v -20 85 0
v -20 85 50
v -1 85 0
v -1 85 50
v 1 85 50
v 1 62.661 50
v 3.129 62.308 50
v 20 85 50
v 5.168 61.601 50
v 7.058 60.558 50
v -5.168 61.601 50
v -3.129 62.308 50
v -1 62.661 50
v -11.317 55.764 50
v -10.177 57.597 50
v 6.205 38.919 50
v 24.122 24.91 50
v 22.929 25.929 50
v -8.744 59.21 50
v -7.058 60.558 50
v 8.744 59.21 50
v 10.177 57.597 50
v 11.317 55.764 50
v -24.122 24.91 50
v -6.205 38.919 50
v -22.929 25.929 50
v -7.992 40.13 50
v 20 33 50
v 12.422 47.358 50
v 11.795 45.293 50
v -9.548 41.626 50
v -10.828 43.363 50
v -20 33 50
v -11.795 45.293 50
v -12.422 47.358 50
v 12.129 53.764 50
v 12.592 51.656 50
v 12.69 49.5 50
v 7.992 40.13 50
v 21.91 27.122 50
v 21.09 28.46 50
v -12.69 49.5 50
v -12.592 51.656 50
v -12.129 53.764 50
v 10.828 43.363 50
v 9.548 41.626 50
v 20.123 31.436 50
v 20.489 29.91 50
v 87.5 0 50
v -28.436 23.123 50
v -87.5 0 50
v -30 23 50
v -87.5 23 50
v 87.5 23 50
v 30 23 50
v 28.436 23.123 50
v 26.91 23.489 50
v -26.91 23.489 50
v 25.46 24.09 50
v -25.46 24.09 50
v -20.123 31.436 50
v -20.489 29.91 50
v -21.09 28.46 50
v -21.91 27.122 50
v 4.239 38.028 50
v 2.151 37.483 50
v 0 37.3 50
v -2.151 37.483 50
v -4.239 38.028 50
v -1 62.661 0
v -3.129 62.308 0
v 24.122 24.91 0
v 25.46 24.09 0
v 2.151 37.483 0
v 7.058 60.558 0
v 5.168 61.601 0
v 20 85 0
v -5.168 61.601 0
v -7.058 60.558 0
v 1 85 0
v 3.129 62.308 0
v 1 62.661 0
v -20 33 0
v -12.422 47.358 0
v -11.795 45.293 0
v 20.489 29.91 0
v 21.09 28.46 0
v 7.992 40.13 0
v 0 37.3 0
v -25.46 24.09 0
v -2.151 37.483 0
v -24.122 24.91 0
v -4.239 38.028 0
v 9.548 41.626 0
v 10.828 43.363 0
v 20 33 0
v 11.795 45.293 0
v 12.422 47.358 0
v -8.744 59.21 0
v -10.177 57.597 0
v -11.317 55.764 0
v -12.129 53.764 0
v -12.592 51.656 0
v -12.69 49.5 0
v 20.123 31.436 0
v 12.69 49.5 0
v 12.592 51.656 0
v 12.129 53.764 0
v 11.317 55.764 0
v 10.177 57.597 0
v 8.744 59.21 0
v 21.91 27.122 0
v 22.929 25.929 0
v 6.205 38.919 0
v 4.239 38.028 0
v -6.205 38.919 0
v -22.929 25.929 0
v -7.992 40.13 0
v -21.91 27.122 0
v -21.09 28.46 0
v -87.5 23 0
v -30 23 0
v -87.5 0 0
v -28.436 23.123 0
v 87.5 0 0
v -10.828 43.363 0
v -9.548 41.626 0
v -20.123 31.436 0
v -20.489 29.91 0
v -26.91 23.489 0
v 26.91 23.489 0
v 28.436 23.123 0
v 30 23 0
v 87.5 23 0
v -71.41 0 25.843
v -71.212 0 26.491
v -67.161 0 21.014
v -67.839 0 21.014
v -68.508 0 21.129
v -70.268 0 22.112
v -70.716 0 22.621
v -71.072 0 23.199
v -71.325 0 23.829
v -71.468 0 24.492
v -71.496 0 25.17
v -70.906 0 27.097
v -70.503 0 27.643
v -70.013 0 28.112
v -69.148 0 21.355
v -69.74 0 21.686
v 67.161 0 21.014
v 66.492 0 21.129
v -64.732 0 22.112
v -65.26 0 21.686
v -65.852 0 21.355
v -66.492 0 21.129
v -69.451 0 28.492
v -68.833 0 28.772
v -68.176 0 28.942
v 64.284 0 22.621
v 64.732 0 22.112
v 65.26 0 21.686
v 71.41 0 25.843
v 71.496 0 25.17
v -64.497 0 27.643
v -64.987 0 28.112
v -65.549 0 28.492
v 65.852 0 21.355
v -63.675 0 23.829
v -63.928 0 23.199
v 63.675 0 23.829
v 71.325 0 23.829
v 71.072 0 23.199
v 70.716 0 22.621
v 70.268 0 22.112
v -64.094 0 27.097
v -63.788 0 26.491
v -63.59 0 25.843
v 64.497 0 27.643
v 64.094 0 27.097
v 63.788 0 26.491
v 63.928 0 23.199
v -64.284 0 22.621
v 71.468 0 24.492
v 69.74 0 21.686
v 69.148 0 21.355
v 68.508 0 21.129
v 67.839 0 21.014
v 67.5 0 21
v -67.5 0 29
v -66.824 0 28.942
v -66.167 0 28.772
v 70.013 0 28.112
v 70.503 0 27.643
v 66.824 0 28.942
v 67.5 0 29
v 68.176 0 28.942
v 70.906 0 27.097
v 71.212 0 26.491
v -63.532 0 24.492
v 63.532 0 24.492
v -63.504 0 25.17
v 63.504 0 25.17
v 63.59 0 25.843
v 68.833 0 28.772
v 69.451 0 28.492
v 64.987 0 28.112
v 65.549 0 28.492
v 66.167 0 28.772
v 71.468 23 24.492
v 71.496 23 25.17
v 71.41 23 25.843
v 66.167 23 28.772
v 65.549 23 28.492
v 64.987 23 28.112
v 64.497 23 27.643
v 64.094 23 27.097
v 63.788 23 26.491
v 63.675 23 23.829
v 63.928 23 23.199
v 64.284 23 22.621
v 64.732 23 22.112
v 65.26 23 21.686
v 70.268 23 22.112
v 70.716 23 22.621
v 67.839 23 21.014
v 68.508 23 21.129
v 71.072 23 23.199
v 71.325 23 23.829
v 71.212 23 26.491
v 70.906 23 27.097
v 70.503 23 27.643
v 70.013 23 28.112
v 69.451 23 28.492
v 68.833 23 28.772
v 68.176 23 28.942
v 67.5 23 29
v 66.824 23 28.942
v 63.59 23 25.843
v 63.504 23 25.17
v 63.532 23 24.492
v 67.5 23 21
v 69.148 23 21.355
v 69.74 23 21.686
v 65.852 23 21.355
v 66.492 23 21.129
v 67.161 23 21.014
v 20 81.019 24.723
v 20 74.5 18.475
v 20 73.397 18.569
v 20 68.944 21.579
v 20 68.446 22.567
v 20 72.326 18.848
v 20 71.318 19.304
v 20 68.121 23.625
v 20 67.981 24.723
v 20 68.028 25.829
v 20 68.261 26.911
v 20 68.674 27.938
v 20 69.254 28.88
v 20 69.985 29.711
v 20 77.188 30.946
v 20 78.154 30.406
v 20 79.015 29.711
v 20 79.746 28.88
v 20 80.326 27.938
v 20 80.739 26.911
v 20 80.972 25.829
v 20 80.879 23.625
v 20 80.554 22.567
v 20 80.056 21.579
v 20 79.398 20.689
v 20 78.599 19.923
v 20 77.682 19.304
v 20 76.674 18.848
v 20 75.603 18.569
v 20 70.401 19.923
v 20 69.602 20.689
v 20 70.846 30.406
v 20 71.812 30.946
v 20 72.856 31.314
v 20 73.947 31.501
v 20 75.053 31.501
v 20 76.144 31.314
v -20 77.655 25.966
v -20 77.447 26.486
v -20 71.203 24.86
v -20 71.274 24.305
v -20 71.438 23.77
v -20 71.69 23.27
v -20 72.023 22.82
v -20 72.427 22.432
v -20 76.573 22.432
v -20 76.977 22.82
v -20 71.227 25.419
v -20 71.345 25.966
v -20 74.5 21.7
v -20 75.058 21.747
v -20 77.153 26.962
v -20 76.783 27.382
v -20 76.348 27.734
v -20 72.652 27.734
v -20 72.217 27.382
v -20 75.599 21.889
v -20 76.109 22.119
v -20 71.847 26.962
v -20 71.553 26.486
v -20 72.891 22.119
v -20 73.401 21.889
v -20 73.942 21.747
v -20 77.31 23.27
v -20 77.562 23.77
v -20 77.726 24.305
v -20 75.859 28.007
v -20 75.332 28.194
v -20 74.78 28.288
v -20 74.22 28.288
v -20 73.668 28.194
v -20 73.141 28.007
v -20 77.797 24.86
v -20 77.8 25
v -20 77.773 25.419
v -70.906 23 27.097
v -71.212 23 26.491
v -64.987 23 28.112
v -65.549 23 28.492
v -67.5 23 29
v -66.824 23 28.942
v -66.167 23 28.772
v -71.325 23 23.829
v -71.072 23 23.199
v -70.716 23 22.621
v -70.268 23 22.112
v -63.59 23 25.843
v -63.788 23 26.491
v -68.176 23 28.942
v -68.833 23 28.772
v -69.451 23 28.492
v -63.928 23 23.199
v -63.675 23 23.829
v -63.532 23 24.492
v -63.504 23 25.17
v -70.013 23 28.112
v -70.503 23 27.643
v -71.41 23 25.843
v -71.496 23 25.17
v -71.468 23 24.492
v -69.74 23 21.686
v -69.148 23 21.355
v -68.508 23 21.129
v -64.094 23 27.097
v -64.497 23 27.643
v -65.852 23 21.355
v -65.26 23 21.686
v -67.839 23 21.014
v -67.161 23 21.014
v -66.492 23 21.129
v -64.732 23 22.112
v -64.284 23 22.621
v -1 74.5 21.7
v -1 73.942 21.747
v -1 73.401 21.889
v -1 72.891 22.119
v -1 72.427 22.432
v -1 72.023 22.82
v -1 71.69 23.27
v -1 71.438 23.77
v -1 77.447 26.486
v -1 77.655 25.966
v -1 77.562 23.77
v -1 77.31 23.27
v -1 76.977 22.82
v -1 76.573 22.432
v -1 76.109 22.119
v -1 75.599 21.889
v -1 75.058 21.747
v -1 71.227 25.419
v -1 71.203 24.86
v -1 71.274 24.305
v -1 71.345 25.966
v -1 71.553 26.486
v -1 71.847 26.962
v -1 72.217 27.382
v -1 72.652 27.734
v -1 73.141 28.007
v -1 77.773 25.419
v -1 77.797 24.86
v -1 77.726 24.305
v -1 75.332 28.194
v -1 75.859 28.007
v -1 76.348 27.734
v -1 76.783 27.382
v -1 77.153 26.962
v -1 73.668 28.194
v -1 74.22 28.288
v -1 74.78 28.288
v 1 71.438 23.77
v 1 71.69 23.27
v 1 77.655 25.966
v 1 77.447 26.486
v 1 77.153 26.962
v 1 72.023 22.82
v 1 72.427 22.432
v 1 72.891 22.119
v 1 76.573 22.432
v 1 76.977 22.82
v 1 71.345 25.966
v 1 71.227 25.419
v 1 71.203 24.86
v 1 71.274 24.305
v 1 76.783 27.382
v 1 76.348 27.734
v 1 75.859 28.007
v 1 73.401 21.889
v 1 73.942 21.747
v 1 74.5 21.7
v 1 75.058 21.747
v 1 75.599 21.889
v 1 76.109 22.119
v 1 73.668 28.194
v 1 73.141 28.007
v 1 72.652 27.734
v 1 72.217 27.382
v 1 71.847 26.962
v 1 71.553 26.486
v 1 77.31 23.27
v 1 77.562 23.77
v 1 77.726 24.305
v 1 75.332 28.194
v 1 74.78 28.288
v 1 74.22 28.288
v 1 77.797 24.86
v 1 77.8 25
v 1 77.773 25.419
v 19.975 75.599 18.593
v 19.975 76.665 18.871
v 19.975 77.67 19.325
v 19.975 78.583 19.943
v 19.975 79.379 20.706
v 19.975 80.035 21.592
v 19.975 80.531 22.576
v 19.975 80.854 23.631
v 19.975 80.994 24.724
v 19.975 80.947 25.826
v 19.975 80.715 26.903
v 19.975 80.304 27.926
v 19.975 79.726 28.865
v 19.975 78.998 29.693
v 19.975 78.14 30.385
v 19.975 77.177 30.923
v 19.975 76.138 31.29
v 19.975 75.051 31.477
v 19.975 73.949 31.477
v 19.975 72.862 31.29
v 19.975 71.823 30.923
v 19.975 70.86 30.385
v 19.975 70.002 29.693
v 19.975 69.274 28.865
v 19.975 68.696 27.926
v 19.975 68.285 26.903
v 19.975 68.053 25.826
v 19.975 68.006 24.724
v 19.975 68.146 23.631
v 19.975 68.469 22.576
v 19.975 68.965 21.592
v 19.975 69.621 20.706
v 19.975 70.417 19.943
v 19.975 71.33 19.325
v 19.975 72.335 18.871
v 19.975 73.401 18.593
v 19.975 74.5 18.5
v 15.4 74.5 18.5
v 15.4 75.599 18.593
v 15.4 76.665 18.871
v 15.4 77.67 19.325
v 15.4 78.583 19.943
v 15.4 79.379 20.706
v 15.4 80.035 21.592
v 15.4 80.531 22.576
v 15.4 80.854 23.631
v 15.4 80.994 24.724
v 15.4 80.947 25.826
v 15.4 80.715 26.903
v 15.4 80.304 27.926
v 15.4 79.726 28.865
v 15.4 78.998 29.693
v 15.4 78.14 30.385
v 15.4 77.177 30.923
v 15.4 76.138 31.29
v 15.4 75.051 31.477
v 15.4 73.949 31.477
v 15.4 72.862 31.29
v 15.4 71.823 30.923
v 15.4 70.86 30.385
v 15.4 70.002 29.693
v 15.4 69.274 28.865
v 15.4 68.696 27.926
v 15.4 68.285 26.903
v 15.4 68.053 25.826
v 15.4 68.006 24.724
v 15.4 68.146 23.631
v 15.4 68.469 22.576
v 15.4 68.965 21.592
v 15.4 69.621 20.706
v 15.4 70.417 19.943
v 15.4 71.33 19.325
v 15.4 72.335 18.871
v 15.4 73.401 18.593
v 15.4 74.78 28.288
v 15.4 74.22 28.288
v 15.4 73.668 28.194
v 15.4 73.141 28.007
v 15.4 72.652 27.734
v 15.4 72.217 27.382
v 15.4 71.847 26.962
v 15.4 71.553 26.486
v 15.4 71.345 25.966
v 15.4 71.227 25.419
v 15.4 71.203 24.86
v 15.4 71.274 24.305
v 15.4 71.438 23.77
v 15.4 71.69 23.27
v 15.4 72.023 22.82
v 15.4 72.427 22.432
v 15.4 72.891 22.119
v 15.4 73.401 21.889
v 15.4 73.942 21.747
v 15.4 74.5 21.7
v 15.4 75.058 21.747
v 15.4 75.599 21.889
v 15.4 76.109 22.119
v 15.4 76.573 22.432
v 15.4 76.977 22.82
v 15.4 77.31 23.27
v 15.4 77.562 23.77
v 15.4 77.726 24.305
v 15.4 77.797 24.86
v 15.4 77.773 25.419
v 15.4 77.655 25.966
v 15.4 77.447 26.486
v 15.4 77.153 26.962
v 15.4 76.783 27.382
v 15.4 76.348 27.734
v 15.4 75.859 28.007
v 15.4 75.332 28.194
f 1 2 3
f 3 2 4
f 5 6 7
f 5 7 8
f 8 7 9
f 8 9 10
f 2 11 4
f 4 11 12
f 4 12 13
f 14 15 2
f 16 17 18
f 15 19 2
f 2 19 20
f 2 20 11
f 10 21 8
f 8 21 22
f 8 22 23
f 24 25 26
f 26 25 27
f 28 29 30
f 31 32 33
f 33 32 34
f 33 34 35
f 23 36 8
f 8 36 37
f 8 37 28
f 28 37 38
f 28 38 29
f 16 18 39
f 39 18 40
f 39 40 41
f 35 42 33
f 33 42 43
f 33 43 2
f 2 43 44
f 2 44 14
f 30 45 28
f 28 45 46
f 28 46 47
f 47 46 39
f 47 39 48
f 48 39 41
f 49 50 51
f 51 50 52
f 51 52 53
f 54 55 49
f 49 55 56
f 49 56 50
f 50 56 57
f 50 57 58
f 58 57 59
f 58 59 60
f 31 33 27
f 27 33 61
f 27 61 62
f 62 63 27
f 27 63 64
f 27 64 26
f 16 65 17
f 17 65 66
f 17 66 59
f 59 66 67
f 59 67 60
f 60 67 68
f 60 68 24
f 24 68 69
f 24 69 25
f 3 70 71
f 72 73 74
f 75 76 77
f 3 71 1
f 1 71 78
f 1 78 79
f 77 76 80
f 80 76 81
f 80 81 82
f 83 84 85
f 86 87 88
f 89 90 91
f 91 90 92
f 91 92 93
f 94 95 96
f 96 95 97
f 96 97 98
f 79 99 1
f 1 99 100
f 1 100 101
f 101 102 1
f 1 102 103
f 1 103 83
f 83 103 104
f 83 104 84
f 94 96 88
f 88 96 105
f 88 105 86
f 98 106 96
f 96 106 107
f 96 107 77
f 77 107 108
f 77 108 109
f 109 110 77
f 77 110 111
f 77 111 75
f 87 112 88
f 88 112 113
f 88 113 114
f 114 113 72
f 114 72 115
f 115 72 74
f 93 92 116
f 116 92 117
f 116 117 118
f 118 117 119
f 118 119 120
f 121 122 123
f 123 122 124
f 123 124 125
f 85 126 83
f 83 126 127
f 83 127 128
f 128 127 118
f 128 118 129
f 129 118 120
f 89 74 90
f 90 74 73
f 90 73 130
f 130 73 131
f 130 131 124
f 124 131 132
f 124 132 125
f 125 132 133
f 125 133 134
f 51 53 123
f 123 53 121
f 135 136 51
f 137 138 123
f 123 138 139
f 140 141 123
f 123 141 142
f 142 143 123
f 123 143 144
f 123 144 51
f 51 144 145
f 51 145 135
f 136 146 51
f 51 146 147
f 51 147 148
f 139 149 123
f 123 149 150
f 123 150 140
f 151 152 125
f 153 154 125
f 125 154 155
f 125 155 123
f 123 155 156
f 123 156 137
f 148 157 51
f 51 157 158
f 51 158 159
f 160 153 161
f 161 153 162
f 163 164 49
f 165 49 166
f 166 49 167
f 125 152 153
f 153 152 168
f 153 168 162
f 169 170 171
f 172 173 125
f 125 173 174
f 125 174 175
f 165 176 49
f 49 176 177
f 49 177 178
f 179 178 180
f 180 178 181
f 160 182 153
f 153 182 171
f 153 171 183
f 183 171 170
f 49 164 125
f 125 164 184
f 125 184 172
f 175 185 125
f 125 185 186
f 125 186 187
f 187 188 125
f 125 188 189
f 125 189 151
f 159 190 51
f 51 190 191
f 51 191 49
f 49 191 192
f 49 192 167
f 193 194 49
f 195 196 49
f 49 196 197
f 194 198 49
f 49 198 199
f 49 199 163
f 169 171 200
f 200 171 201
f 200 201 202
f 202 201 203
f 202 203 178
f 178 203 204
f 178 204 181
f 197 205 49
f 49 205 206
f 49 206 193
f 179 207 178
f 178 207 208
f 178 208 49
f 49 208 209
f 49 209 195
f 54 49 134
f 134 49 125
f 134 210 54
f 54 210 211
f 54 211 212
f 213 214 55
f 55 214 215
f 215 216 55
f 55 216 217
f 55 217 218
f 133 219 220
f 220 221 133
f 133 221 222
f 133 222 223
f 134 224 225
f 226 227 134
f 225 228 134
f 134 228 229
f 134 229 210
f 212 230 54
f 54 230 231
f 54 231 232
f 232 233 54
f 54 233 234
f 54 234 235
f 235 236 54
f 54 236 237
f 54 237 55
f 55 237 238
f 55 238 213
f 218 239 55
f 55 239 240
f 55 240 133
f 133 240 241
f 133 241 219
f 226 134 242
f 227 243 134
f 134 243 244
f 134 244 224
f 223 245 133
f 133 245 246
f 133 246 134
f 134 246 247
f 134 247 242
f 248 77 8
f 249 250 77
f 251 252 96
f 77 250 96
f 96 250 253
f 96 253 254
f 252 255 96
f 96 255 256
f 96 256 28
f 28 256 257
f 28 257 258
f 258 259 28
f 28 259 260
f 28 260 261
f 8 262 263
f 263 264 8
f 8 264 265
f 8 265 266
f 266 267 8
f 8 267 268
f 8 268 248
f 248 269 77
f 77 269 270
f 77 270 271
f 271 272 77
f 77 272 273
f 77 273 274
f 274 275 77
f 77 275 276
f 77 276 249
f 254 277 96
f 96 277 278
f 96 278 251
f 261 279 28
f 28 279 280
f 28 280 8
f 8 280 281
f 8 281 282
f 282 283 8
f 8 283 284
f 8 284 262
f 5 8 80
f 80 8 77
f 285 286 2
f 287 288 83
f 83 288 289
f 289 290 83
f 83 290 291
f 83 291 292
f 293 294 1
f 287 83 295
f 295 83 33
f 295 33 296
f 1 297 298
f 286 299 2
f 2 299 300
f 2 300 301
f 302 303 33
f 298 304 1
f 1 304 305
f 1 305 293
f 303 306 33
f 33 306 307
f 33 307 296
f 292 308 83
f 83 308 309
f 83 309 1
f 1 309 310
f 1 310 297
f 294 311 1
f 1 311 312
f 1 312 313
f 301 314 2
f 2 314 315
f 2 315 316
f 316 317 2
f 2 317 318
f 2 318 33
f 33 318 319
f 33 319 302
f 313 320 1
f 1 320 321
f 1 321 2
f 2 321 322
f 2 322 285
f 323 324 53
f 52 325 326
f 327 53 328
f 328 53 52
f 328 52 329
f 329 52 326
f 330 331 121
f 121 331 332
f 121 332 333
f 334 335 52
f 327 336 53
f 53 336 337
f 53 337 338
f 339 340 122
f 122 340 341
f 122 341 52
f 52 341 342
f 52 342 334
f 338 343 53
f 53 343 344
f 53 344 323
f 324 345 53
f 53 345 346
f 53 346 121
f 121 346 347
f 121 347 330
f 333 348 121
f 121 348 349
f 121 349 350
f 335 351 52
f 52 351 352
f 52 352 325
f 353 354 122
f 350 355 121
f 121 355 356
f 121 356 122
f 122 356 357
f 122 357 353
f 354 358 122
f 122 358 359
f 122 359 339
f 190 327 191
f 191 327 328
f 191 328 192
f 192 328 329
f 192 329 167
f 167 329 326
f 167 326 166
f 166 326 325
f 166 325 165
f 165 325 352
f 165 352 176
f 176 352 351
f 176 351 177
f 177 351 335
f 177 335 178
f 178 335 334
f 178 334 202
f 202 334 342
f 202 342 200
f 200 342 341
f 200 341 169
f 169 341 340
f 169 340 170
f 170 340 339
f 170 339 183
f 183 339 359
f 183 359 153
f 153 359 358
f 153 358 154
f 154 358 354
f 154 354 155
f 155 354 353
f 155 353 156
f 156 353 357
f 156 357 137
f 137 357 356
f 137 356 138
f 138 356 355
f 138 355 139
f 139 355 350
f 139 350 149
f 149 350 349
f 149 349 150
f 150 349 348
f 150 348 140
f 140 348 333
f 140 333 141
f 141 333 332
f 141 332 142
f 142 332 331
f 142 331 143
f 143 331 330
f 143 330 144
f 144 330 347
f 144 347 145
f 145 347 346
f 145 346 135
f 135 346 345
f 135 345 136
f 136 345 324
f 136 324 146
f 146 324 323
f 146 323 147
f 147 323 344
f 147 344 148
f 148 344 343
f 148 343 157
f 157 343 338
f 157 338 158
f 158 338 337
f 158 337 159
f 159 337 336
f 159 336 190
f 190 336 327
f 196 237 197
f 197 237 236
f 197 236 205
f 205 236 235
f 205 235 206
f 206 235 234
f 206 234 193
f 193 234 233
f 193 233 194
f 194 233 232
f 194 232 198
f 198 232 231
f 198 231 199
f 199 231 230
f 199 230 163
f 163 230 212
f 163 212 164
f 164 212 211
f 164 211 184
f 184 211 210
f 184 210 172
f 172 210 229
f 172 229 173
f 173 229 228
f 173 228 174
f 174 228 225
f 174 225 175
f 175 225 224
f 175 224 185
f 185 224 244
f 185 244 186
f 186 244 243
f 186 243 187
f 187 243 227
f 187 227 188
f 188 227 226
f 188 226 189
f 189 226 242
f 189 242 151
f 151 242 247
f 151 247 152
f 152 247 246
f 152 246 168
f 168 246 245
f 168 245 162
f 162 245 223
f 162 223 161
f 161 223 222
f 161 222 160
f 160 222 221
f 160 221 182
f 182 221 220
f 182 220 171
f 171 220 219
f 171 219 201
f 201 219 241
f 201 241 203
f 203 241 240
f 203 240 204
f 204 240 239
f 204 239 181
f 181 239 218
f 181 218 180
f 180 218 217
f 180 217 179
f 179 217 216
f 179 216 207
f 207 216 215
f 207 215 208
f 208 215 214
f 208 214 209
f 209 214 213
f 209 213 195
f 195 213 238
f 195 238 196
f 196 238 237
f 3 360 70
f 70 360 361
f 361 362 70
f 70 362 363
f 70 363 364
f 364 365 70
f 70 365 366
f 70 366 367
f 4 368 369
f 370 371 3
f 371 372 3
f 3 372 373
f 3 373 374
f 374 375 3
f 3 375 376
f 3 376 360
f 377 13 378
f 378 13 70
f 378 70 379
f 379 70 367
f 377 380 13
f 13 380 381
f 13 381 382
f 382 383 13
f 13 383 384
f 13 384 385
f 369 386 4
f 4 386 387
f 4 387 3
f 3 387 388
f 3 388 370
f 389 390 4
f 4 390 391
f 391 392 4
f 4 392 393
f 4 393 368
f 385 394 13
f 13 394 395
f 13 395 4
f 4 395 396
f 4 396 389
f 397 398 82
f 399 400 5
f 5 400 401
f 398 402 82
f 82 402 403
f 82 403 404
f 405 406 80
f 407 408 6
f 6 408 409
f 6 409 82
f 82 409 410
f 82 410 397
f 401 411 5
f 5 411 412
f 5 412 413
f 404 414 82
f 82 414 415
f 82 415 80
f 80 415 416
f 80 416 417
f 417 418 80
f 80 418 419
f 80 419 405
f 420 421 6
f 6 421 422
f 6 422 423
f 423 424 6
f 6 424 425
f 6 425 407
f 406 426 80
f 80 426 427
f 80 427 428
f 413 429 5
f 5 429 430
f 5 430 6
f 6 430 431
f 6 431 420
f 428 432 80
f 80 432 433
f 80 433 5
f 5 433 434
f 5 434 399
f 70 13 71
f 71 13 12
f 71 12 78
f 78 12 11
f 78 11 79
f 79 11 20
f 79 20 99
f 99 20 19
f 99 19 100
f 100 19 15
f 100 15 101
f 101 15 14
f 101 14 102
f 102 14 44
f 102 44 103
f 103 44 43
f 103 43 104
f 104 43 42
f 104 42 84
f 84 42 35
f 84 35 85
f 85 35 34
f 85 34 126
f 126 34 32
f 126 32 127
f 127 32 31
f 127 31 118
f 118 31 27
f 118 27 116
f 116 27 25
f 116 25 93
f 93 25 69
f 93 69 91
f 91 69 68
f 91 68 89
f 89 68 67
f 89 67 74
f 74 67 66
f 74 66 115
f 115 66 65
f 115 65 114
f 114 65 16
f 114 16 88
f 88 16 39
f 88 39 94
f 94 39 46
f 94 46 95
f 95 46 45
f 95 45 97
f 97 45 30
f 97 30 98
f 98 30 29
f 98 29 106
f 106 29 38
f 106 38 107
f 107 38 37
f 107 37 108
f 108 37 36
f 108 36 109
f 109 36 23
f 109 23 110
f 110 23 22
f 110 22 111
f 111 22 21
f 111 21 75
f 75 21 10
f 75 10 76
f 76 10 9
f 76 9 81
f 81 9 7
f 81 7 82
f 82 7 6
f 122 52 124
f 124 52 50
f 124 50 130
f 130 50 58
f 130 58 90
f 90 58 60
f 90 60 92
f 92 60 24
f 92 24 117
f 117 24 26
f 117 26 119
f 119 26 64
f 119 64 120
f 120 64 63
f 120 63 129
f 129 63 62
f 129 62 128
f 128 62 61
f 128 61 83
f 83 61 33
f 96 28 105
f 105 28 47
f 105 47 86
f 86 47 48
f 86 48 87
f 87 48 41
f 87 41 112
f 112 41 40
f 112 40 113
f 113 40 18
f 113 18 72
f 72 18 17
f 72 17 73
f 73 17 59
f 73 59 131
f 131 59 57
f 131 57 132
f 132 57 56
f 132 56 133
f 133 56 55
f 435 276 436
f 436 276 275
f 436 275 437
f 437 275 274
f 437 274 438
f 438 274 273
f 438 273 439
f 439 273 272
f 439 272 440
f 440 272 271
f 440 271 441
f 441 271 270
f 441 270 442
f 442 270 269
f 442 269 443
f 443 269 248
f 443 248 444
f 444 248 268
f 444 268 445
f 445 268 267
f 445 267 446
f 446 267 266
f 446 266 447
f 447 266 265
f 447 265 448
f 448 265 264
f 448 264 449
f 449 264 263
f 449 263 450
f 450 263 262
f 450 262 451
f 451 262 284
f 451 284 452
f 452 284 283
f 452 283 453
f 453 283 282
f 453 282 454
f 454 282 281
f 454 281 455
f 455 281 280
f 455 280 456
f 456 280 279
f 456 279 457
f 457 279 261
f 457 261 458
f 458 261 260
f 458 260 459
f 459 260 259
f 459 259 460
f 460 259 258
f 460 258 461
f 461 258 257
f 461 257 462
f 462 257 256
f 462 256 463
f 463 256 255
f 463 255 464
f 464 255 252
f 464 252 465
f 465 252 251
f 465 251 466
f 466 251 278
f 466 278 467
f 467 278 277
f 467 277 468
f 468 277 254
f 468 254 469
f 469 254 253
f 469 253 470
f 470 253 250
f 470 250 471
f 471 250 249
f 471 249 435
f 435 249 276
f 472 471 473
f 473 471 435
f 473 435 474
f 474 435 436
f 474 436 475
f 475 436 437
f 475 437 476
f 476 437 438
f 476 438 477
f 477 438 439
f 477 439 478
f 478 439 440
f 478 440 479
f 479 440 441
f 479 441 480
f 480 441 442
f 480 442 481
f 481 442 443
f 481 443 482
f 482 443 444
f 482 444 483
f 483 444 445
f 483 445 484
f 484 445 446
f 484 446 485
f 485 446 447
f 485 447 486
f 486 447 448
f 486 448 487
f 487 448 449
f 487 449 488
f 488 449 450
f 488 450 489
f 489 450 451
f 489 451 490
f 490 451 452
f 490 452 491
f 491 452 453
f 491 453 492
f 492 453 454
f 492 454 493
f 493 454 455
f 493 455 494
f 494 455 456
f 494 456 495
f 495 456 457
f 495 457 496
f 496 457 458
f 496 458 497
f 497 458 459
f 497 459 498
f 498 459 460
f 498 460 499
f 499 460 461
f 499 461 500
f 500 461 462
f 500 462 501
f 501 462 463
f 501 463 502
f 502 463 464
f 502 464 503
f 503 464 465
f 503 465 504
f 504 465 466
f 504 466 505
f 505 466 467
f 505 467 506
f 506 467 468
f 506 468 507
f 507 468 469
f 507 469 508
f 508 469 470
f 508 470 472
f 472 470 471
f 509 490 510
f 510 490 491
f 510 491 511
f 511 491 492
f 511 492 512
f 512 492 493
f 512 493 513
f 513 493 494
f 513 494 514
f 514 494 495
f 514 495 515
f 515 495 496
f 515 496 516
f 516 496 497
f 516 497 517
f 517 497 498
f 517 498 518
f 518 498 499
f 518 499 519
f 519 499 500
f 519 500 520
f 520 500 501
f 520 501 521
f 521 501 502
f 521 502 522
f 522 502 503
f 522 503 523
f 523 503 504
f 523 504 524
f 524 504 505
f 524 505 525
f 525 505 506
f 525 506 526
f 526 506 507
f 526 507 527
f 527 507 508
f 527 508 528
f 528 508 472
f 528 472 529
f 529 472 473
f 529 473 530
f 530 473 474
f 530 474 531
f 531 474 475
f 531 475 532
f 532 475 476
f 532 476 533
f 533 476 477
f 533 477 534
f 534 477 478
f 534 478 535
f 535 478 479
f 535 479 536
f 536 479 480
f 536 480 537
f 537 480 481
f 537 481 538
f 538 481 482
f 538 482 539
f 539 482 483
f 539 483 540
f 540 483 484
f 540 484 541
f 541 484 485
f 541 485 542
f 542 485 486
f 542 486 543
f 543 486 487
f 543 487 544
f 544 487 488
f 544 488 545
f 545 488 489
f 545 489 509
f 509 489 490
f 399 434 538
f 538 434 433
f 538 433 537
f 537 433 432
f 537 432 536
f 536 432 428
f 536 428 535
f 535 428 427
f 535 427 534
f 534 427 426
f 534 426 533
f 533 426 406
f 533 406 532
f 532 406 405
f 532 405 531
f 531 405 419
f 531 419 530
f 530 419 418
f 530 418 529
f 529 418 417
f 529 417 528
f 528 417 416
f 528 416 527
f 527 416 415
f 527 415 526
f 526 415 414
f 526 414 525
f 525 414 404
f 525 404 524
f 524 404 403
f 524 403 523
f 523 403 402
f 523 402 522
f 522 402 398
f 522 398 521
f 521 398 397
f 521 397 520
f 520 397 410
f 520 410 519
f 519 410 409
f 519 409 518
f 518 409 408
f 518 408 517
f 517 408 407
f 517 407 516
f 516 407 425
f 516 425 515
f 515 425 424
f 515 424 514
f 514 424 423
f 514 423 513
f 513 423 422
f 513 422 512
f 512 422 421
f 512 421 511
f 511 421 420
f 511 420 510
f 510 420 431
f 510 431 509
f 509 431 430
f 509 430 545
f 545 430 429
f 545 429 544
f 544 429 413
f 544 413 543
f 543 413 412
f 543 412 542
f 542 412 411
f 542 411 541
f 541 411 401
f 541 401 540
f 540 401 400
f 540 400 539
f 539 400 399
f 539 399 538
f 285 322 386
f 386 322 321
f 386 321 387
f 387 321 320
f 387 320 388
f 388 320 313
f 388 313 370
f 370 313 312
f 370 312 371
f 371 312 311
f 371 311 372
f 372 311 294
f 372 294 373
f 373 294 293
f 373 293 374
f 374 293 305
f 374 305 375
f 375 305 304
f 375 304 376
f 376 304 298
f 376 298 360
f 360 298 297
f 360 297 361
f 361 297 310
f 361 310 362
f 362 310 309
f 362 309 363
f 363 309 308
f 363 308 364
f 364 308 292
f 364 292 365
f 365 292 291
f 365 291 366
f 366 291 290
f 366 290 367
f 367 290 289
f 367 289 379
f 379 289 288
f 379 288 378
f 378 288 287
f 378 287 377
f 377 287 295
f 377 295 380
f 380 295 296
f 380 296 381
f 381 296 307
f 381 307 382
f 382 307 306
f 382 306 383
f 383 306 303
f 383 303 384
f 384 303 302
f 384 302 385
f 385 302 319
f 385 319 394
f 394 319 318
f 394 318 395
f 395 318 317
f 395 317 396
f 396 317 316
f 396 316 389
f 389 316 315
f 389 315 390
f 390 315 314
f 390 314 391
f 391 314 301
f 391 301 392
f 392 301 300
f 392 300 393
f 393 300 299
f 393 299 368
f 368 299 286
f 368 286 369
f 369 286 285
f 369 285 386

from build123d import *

# Parameters (mm, degrees)
RESSALTO_EXTRUS_O1_DEPTH = 50
ESBO_O2_R                = 4
CORTE_EXTRUS_O1_DEPTH    = 24
CORTE_EXTRUS_O2_DEPTH    = 51
FILETE1_R                = 10


with BuildPart() as part:
    # Esboço1 → Ressalto-extrusão1 (new body)
    with BuildSketch(Plane.XY):
        Polygon((87.5, 0), (-87.5, 0), (-87.5, 23), (-20, 23), (-20, 85), (20, 85), (20, 23), (87.5, 23), align=None)
    extrude(amount=RESSALTO_EXTRUS_O1_DEPTH)

    # Esboço2 → Corte-extrusão1 (cut, through all)
    with BuildSketch(Plane(origin=(0, 23, 0), x_dir=(1, 0, 0), z_dir=(0, 1, 0))):
        with Locations((-67.5, -25)):
            Circle(ESBO_O2_R)
        with Locations((67.5, -25)):
            Circle(ESBO_O2_R)
    extrude(amount=-CORTE_EXTRUS_O1_DEPTH, mode=Mode.SUBTRACT)

    # Esboço3 → Corte-extrusão2 (cut, through all)
    with BuildSketch(Plane.XY.offset(50)):
        with BuildLine():
            Line((1, 62.660568708), (1, 116.5))
            Line((1, 116.5), (-1, 116.5))
            Line((-1, 116.5), (-1, 62.660568708))
            ThreePointArc((-1, 62.660568708), (0, 37.3), (1, 62.660568708))
        make_face()
    extrude(amount=-CORTE_EXTRUS_O2_DEPTH, mode=Mode.SUBTRACT)

    # Filete1
    filete1_edges = [part.edges().sort_by_distance(p)[0] for p in [
        (-20, 23, 25),
        (20, 23, 25),
    ]]
    fillet(filete1_edges, radius=FILETE1_R)

    # Esboço5 → Rebaixo para parafuso de máquina com cabeça panela de M61 (revolve, cut)
    with BuildSketch(Plane(origin=(20, 74.5, 25), x_dir=(0, 0, -1), z_dir=(0, 1, 0))):
        Polygon((0, 0), (0, 107.5), (3.3, 107.5), (3.3, 4.6), (6.5, 4.6), (6.5, 0.025), (6.525, 0), align=None)
    revolve(axis=Axis((26.35, 74.5, 25), (-1, 0, 0)), mode=Mode.SUBTRACT)


solid = part.part
